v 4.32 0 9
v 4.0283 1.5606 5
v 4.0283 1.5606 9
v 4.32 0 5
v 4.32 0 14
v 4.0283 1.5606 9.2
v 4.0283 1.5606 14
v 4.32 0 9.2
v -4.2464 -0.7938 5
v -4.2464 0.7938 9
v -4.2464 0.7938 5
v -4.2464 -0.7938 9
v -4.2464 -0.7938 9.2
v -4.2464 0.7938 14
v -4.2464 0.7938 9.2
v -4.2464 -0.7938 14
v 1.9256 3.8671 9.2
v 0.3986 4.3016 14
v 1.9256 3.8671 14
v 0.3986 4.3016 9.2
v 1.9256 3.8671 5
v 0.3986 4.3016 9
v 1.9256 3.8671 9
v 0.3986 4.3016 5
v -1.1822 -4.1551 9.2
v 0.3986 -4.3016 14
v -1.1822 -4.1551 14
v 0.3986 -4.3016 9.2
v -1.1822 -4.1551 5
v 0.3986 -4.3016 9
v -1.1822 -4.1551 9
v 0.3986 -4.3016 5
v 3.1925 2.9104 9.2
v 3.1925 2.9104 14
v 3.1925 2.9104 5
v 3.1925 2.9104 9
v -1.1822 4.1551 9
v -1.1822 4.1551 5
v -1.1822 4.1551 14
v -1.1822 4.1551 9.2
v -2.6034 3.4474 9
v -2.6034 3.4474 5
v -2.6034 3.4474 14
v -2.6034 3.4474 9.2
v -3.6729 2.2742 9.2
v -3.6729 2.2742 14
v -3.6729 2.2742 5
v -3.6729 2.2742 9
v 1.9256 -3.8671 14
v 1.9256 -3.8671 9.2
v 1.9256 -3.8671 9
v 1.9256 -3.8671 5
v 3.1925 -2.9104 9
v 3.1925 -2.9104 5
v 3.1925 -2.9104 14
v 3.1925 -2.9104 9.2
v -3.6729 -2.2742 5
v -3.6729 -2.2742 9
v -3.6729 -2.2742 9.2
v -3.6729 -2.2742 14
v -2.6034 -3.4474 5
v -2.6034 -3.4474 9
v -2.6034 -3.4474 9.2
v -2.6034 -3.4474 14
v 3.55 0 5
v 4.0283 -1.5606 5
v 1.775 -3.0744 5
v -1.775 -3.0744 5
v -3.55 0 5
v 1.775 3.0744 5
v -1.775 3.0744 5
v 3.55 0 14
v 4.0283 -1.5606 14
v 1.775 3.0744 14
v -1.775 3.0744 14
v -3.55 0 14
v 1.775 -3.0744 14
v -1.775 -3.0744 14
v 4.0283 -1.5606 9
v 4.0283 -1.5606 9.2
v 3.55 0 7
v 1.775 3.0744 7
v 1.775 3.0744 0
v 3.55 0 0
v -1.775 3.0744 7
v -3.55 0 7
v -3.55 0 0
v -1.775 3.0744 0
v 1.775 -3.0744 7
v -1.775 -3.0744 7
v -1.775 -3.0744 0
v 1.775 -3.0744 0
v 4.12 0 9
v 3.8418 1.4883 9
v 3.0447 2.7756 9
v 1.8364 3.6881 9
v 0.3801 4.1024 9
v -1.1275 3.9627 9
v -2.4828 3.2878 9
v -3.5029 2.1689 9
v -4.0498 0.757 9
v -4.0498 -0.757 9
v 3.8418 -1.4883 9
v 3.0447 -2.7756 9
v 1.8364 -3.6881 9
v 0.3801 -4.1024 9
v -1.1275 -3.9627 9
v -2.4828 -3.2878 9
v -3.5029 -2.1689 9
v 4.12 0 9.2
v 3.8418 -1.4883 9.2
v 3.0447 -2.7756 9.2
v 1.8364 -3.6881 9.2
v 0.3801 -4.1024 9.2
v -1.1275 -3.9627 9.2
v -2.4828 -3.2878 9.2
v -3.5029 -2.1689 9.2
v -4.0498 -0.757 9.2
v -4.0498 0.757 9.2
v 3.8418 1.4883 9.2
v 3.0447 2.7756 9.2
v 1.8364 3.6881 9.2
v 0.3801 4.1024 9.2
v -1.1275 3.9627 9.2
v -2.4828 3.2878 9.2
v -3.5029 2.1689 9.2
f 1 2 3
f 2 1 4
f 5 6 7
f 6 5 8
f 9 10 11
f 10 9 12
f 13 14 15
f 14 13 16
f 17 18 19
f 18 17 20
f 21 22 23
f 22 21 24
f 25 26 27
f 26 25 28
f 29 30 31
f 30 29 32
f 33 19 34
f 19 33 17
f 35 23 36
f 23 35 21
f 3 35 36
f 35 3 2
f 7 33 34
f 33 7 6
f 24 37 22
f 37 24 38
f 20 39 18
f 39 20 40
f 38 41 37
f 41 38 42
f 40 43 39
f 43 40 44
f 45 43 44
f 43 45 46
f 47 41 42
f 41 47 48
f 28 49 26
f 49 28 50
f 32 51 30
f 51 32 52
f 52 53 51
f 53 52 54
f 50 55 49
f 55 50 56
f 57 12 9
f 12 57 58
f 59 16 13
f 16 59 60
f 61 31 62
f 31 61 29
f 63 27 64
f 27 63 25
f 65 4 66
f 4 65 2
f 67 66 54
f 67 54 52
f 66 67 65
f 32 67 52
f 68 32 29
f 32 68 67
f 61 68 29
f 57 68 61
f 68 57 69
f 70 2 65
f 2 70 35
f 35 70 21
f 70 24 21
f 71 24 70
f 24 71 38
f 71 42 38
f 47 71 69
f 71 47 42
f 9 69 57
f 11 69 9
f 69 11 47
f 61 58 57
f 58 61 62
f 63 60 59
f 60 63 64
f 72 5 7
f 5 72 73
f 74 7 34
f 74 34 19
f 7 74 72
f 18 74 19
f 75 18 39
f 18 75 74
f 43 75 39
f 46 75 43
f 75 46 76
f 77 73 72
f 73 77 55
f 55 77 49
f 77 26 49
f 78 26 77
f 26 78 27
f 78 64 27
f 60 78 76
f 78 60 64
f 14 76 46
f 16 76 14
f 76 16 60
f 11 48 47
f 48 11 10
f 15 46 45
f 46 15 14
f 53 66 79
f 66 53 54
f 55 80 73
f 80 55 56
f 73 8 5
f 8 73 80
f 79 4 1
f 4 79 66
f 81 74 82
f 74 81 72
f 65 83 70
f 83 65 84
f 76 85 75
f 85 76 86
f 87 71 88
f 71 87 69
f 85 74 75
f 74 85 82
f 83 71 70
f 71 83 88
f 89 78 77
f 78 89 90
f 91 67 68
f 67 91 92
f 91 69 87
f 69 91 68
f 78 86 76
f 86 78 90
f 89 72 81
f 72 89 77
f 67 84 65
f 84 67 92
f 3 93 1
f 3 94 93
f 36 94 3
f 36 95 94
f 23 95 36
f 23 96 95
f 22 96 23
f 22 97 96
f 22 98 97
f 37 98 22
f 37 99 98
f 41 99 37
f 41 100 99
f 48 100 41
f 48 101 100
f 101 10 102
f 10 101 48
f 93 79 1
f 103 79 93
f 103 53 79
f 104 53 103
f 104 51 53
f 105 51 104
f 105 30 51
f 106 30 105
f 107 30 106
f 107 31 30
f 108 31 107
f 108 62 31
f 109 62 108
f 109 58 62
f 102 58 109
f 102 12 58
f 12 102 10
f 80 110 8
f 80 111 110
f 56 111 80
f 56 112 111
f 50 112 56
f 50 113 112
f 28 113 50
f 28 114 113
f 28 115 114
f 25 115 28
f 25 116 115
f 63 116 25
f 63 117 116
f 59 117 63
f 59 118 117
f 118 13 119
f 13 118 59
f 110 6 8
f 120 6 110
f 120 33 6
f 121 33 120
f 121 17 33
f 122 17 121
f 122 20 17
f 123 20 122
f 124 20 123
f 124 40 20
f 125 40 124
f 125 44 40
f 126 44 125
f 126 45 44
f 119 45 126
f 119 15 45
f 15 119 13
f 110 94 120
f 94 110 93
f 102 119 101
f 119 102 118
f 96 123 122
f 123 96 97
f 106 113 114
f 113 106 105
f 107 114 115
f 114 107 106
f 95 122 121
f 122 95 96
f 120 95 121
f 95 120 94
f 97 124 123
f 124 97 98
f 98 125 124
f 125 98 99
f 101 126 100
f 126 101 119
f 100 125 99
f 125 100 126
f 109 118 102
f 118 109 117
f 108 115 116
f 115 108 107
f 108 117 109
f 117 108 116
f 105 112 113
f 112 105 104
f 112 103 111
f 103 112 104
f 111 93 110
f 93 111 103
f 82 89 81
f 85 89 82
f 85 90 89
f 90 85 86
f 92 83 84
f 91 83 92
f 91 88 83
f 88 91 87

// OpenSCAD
SIDES = 6;


//BIT
BIT_DIAMETER = 7.1;
BIT_LENGTH = 7;

cylinder(
r=BIT_DIAMETER/2,
h=BIT_LENGTH,
$fn=SIDES);


//EXTENSION
EXT_THICKNESS = 0.77;
EXT_OVERLAP = 2;
EXT_LENGTH = 7 + EXT_OVERLAP;
EXT_SIDES = 17;
NOTCH_HEIGHT = 0.2;
NOTCH_DEPTH = 0.2; 

translate([0,0,BIT_LENGTH-EXT_OVERLAP])
difference() {
  //extension
  difference() {
    cylinder(
    r=BIT_DIAMETER/2+EXT_THICKNESS,
    h=EXT_LENGTH,
    $fn=EXT_SIDES);

    cylinder(
    r=BIT_DIAMETER/2,
    h=EXT_LENGTH,
    $fn=6);
  }
  
  //notch
  translate([0,0,EXT_OVERLAP*2])
  difference() {
    cylinder(
      r=BIT_DIAMETER/2+EXT_THICKNESS,
      h=NOTCH_HEIGHT,
      $fn=EXT_SIDES);
    cylinder(
      r=BIT_DIAMETER/2+EXT_THICKNESS-NOTCH_DEPTH,
      h=NOTCH_HEIGHT,
      $fn=EXT_SIDES);
  }
}
